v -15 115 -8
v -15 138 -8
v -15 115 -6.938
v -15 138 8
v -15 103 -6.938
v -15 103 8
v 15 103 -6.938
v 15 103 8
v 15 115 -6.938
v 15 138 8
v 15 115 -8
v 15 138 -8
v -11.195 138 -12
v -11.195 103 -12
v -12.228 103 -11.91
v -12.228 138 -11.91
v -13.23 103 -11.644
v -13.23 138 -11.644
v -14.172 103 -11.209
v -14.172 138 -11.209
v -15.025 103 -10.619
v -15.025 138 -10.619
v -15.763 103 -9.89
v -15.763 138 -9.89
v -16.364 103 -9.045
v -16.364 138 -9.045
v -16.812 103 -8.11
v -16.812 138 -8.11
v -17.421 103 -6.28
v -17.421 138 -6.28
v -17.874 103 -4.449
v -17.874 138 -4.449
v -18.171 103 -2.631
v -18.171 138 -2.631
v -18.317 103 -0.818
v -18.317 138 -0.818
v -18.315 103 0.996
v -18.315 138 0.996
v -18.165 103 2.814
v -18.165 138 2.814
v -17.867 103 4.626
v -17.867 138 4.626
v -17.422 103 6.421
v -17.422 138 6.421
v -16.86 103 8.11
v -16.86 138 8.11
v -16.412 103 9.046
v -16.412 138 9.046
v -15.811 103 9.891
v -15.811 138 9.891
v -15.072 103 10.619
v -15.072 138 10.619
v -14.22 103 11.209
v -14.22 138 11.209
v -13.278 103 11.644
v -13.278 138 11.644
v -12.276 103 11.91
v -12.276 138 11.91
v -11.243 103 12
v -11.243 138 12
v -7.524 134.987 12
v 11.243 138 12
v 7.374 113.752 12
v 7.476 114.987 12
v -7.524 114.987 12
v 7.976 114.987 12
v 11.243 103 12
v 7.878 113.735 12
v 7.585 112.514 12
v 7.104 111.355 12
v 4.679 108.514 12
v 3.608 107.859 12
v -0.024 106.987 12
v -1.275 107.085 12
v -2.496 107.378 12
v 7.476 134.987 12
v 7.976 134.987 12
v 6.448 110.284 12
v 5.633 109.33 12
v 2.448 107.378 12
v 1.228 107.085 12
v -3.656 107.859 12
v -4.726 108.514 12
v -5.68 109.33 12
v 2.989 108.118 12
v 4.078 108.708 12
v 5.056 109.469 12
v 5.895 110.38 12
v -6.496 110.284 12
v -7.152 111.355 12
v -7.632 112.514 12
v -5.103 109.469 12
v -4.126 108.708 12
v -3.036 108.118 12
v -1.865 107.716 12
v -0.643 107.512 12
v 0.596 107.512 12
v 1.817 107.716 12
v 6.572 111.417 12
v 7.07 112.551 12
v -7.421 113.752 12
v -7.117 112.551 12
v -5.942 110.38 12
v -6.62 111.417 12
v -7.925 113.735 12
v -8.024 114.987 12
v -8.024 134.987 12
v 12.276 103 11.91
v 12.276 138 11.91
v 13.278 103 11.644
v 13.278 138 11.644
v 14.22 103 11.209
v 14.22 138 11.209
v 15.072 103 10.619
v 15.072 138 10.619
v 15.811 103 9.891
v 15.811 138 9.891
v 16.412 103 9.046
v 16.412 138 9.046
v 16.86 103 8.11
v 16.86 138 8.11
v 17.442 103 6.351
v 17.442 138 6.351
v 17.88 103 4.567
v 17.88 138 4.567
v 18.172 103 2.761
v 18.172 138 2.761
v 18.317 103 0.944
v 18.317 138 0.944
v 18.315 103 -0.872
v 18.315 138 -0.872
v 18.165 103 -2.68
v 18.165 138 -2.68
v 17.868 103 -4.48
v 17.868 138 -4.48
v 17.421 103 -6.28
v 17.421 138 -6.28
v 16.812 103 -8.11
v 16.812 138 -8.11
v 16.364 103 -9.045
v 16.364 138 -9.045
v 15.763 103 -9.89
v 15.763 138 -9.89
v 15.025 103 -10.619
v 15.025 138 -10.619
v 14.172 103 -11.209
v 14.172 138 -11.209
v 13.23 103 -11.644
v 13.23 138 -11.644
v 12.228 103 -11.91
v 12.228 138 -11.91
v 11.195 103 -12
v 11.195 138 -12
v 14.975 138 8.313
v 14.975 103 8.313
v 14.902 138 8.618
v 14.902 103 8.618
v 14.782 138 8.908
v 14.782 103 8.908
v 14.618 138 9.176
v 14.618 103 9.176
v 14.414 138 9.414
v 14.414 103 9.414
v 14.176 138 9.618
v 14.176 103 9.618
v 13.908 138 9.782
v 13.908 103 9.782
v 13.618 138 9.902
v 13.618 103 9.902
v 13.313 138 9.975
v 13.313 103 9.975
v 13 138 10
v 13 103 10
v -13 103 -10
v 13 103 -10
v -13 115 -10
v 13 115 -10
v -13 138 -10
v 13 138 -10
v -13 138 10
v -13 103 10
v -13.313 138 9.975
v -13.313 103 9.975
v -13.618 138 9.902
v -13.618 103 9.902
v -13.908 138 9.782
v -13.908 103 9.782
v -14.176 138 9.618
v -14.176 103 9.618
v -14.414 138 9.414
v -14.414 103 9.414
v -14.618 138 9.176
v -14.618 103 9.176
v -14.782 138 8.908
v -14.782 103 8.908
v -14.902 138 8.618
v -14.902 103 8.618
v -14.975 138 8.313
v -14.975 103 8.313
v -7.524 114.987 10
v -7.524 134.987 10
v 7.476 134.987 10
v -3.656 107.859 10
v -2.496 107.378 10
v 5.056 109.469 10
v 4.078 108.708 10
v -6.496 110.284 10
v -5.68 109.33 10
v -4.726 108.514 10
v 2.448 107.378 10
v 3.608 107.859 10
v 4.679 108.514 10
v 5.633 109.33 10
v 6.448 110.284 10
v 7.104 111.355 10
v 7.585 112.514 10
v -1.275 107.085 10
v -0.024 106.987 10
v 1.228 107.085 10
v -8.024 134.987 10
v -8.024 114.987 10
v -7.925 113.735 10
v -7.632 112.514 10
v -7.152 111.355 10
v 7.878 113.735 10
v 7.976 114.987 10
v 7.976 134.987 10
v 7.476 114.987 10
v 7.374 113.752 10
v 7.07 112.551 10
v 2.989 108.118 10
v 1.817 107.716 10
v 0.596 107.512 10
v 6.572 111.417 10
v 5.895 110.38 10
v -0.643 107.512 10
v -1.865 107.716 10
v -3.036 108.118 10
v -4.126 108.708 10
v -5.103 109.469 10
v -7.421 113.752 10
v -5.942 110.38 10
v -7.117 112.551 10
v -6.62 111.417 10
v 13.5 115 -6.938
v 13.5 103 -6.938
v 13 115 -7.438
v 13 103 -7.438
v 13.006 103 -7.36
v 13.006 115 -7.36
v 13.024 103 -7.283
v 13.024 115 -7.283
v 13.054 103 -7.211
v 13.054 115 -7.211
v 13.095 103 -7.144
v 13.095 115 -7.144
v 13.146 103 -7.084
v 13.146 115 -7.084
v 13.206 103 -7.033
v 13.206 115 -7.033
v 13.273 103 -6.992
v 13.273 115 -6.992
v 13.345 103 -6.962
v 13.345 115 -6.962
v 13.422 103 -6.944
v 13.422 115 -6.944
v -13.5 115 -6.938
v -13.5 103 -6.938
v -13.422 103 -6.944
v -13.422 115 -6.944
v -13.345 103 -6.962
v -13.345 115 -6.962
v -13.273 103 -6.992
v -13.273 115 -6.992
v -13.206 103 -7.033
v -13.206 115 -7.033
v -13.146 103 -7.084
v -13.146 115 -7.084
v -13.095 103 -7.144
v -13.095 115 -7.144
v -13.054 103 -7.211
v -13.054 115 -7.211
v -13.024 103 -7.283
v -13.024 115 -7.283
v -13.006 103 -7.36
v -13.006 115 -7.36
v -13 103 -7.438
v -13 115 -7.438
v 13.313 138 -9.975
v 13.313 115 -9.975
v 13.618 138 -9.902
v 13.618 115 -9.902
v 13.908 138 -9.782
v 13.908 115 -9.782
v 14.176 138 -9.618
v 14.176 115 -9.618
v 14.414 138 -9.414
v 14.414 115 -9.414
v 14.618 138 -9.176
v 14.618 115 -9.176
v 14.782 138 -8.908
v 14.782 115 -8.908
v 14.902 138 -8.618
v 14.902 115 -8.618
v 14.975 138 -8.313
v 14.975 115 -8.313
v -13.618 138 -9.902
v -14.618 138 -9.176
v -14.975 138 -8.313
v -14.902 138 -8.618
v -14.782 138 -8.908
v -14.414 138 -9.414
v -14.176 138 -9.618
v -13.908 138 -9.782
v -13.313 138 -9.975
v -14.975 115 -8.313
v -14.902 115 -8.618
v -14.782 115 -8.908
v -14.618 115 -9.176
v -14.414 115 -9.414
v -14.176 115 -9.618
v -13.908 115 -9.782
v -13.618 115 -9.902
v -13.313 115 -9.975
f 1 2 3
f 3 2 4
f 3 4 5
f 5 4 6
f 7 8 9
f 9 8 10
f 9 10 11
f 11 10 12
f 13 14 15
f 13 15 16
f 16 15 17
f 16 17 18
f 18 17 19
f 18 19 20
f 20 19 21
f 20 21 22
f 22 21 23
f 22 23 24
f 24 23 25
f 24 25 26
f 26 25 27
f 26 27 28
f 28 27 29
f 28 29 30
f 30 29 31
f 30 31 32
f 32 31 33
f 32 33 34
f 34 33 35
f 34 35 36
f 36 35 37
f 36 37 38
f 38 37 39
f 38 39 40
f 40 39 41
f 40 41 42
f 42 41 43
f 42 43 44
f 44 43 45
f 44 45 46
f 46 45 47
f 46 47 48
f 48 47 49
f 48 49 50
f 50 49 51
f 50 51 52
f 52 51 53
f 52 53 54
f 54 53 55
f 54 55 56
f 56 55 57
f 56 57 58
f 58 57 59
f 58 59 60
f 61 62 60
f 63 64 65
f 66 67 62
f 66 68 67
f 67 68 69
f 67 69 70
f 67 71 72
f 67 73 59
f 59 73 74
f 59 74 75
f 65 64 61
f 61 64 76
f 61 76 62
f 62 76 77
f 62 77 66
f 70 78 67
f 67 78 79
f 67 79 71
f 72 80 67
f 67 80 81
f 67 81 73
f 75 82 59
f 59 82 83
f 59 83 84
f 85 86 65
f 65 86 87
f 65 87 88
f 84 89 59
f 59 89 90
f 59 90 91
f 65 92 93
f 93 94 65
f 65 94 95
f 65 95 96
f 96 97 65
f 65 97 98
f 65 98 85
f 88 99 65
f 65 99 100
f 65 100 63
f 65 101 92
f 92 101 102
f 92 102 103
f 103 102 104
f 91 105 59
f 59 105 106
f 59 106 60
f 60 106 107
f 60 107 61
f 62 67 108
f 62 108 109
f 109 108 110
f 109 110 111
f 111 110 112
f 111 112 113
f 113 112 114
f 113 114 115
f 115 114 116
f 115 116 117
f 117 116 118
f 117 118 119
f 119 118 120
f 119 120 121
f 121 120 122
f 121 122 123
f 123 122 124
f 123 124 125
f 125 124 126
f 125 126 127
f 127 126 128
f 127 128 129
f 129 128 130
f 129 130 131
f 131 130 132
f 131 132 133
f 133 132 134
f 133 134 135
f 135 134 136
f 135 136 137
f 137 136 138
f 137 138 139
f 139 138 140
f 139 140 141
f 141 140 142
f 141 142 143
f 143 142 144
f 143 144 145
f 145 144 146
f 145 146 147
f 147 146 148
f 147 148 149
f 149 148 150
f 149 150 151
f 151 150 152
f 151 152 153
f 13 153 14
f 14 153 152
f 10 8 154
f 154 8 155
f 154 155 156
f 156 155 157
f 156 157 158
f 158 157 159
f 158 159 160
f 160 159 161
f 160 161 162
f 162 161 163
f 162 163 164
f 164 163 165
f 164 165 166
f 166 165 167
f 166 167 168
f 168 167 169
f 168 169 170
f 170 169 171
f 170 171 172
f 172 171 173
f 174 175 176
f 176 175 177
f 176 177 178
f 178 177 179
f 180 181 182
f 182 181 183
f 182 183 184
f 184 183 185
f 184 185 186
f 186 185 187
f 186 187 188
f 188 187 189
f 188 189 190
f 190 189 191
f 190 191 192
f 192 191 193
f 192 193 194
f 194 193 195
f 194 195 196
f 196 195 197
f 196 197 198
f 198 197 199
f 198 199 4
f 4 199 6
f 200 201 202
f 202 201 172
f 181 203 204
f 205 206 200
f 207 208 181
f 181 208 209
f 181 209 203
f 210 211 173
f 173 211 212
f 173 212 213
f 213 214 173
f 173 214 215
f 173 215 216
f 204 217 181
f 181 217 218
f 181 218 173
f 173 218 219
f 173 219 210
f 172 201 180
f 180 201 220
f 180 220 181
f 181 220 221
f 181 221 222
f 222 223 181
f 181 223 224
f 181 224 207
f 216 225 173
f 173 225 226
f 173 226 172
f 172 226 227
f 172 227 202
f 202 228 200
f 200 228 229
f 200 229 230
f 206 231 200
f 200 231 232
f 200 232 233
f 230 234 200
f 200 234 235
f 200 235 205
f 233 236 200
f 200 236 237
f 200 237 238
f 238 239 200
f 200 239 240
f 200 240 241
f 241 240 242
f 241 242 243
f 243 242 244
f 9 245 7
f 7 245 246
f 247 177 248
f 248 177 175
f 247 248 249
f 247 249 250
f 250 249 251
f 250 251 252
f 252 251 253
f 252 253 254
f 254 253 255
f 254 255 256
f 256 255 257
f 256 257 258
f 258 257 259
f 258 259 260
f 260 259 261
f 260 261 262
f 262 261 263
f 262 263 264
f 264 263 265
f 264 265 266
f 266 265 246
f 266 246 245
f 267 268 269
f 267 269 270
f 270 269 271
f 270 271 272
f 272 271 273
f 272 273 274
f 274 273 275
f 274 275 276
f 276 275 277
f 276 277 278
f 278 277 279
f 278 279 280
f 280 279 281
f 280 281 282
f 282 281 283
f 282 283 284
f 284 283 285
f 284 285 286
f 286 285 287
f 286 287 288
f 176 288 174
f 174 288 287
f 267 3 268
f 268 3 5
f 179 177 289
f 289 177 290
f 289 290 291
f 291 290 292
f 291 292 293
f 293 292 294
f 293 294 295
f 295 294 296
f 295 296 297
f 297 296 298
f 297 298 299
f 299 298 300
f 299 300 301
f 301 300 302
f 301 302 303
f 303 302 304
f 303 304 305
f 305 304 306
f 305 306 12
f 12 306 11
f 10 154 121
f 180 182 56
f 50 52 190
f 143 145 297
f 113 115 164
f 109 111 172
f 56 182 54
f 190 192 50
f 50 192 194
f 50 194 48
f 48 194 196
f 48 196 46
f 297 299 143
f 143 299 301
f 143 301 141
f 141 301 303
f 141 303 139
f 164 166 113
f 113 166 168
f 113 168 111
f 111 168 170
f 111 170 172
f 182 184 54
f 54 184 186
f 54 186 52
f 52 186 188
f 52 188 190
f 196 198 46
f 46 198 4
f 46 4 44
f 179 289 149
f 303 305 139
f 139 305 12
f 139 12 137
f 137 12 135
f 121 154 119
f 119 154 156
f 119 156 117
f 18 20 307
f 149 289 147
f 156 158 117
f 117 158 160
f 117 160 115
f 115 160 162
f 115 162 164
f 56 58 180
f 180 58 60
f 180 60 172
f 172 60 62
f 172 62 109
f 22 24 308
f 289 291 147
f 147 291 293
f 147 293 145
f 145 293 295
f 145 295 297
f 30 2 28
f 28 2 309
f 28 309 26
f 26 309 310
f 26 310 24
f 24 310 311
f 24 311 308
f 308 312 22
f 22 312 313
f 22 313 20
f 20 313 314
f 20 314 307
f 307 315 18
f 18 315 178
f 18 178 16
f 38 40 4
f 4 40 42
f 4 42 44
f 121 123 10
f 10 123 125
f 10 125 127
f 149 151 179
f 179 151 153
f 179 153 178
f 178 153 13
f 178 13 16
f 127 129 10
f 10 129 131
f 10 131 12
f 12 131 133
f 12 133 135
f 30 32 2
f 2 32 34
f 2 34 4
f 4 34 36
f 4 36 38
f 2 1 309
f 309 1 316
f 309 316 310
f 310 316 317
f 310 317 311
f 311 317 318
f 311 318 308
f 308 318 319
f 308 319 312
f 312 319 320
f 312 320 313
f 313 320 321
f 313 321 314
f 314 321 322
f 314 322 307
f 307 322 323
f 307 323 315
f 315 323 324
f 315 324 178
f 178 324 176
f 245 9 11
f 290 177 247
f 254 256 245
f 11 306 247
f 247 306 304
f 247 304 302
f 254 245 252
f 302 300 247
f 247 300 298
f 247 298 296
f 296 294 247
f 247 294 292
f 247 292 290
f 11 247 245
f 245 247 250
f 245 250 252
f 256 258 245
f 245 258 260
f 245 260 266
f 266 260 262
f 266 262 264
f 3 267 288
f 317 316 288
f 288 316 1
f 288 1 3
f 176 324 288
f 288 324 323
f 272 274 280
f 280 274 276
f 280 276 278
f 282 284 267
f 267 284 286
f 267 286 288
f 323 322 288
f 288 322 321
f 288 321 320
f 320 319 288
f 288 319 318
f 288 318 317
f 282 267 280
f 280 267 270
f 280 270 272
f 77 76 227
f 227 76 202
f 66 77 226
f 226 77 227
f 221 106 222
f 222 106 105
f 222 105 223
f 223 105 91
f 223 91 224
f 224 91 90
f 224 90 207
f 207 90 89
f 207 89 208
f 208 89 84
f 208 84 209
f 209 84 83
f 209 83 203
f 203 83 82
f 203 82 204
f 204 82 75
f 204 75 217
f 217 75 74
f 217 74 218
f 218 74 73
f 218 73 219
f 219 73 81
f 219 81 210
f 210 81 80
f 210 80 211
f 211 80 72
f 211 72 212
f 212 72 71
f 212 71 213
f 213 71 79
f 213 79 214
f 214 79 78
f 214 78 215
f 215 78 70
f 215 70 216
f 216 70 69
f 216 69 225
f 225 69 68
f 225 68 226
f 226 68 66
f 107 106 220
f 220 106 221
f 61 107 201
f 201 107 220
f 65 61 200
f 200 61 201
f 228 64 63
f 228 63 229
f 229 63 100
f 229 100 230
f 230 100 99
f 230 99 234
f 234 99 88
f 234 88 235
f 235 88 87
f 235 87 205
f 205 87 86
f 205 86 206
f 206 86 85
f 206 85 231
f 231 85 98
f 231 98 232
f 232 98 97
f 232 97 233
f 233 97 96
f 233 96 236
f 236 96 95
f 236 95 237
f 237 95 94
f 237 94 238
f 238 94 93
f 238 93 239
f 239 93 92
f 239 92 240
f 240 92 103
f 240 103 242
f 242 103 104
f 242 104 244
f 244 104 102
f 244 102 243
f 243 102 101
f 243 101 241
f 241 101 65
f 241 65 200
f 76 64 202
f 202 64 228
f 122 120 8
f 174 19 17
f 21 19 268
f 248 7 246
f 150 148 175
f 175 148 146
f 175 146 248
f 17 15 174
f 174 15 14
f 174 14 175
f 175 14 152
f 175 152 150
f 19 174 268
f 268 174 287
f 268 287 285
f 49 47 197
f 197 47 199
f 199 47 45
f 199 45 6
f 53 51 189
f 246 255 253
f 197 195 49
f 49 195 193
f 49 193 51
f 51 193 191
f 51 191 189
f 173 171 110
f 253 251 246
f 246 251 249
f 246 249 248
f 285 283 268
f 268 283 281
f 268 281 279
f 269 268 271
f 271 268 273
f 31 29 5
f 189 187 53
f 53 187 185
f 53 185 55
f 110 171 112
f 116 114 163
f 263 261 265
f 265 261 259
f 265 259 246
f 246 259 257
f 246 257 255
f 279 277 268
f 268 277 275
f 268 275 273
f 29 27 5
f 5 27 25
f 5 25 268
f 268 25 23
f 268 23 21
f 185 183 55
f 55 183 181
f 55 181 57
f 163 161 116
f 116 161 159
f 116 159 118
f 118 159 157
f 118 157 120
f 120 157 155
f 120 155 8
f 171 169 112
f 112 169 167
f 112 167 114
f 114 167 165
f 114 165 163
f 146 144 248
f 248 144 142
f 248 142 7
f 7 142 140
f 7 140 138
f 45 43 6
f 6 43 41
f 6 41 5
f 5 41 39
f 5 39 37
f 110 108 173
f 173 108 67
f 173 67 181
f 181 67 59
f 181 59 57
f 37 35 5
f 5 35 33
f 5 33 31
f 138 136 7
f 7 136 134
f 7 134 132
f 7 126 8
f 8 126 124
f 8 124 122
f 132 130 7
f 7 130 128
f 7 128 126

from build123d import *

# Parameters (mm, degrees)
BOSS_EXTRUDE4_DEPTH = 80
BOSS_EXTRUDE5_DEPTH = 57
CUT_EXTRUDE1_DEPTH  = 3
SKETCH13_W          = 46.599854234
SKETCH13_H          = 36.724502986
CUT_EXTRUDE2_DEPTH  = 45


with BuildPart() as part:
    # Sketch8 → Boss-Extrude4 (new body)
    with BuildSketch(Plane(origin=(0, 58, 0), x_dir=(1, 0, 0), z_dir=(0, 1, 0))):
        with BuildLine():
            Line((-11.242998334, -12), (11.242998334, -12))
            ThreePointArc((11.242998334, -12), (14.65898123, -10.932652517), (16.859617211, -8.110353618))
            add(Edge.make_bspline(
                [(16.859617211, -8.110353618), (17.850691543, -5.472650271), (18.834301198, 0.028433299), (17.819526576, 5.426475932), (16.811684839, 8.109721769)],
                knots=[0.167422492, 0.167422492, 0.167422492, 0.167422492, 0.502499344, 0.837905074, 0.837905074, 0.837905074, 0.837905074], degree=3))
            ThreePointArc((16.811684839, 8.109721769), (14.611088933, 10.932460371), (11.194828596, 12))
            Line((11.194828596, 12), (-11.194828596, 12))
            ThreePointArc((-11.194828596, 12), (-14.611088933, 10.932460371), (-16.811684839, 8.109721769))
            add(Edge.make_bspline(
                [(-16.859617211, -8.110353618), (-17.850691543, -5.472650271), (-18.834301198, 0.028433299), (-17.819526576, 5.426475932), (-16.811684839, 8.109721769)],
                knots=[0.167422492, 0.167422492, 0.167422492, 0.167422492, 0.502499344, 0.837905074, 0.837905074, 0.837905074, 0.837905074], degree=3))
            ThreePointArc((-16.859617211, -8.110353618), (-14.65898123, -10.932652517), (-11.242998334, -12))
        make_face()
        with BuildLine():
            Line((-13, -10), (13, -10))
            ThreePointArc((13, -10), (14.414213562, -9.414213562), (15, -8))
            Line((15, -8), (15, 8))
            ThreePointArc((15, 8), (14.414213562, 9.414213562), (13, 10))
            Line((13, 10), (-13, 10))
            ThreePointArc((-13, 10), (-14.414213562, 9.414213562), (-15, 8))
            Line((-15, 8), (-15, -8))
            ThreePointArc((-15, -8), (-14.414213562, -9.414213562), (-13, -10))
        make_face(mode=Mode.SUBTRACT)
    extrude(amount=BOSS_EXTRUDE4_DEPTH)

    # Sketch11 → Boss-Extrude5 (add)
    with BuildSketch(Plane(origin=(0, 58, 0), x_dir=(1, 0, 0), z_dir=(0, 1, 0))):
        with BuildLine():
            Line((13, 10), (15, 10))
            Line((15, 10), (15, 6.937911183))
            Line((15, 6.937911183), (13.5, 6.937911183))
            ThreePointArc((13.5, 6.937911183), (13.146446609, 7.084357793), (13, 7.437911183))
            Line((13, 7.437911183), (13, 10))
        make_face()
        with BuildLine():
            Line((-13, 7.437911183), (-13, 10))
            Line((-13, 10), (-15, 10))
            Line((-15, 10), (-15, 6.937911183))
            Line((-15, 6.937911183), (-13.5, 6.937911183))
            ThreePointArc((-13.5, 6.937911183), (-13.146446609, 7.084357793), (-13, 7.437911183))
        make_face()
    extrude(amount=BOSS_EXTRUDE5_DEPTH)

    # Sketch12 → Cut-Extrude1 (cut)
    with BuildSketch(Plane.XY.offset(12)):
        with BuildLine():
            Line((7.476357736, 134.986611492), (7.476357736, 114.986611492))
            ThreePointArc((7.476357736, 114.986611492), (-0.023642264, 107.486611492), (-7.523642264, 114.986611492))
            Line((-7.523642264, 114.986611492), (-7.523642264, 134.986611492))
            Line((-7.523642264, 134.986611492), (-8.023642264, 134.986611492))
            Line((-8.023642264, 134.986611492), (-8.023642264, 114.986611492))
            ThreePointArc((-8.023642264, 114.986611492), (-0.023642264, 106.986611492), (7.976357736, 114.986611492))
            Line((7.976357736, 114.986611492), (7.976357736, 134.986611492))
            Line((7.976357736, 134.986611492), (7.476357736, 134.986611492))
        make_face()
    extrude(amount=-CUT_EXTRUDE1_DEPTH, mode=Mode.SUBTRACT)

    # Sketch13 → Cut-Extrude2 (cut)
    with BuildSketch(Plane(origin=(0, 58, 0), x_dir=(1, 0, 0), z_dir=(0, 1, 0))):
        with Locations((3.699497448, 5.974004227)):
            Rectangle(SKETCH13_W, SKETCH13_H)
    extrude(amount=CUT_EXTRUDE2_DEPTH, mode=Mode.SUBTRACT)


solid = part.part
